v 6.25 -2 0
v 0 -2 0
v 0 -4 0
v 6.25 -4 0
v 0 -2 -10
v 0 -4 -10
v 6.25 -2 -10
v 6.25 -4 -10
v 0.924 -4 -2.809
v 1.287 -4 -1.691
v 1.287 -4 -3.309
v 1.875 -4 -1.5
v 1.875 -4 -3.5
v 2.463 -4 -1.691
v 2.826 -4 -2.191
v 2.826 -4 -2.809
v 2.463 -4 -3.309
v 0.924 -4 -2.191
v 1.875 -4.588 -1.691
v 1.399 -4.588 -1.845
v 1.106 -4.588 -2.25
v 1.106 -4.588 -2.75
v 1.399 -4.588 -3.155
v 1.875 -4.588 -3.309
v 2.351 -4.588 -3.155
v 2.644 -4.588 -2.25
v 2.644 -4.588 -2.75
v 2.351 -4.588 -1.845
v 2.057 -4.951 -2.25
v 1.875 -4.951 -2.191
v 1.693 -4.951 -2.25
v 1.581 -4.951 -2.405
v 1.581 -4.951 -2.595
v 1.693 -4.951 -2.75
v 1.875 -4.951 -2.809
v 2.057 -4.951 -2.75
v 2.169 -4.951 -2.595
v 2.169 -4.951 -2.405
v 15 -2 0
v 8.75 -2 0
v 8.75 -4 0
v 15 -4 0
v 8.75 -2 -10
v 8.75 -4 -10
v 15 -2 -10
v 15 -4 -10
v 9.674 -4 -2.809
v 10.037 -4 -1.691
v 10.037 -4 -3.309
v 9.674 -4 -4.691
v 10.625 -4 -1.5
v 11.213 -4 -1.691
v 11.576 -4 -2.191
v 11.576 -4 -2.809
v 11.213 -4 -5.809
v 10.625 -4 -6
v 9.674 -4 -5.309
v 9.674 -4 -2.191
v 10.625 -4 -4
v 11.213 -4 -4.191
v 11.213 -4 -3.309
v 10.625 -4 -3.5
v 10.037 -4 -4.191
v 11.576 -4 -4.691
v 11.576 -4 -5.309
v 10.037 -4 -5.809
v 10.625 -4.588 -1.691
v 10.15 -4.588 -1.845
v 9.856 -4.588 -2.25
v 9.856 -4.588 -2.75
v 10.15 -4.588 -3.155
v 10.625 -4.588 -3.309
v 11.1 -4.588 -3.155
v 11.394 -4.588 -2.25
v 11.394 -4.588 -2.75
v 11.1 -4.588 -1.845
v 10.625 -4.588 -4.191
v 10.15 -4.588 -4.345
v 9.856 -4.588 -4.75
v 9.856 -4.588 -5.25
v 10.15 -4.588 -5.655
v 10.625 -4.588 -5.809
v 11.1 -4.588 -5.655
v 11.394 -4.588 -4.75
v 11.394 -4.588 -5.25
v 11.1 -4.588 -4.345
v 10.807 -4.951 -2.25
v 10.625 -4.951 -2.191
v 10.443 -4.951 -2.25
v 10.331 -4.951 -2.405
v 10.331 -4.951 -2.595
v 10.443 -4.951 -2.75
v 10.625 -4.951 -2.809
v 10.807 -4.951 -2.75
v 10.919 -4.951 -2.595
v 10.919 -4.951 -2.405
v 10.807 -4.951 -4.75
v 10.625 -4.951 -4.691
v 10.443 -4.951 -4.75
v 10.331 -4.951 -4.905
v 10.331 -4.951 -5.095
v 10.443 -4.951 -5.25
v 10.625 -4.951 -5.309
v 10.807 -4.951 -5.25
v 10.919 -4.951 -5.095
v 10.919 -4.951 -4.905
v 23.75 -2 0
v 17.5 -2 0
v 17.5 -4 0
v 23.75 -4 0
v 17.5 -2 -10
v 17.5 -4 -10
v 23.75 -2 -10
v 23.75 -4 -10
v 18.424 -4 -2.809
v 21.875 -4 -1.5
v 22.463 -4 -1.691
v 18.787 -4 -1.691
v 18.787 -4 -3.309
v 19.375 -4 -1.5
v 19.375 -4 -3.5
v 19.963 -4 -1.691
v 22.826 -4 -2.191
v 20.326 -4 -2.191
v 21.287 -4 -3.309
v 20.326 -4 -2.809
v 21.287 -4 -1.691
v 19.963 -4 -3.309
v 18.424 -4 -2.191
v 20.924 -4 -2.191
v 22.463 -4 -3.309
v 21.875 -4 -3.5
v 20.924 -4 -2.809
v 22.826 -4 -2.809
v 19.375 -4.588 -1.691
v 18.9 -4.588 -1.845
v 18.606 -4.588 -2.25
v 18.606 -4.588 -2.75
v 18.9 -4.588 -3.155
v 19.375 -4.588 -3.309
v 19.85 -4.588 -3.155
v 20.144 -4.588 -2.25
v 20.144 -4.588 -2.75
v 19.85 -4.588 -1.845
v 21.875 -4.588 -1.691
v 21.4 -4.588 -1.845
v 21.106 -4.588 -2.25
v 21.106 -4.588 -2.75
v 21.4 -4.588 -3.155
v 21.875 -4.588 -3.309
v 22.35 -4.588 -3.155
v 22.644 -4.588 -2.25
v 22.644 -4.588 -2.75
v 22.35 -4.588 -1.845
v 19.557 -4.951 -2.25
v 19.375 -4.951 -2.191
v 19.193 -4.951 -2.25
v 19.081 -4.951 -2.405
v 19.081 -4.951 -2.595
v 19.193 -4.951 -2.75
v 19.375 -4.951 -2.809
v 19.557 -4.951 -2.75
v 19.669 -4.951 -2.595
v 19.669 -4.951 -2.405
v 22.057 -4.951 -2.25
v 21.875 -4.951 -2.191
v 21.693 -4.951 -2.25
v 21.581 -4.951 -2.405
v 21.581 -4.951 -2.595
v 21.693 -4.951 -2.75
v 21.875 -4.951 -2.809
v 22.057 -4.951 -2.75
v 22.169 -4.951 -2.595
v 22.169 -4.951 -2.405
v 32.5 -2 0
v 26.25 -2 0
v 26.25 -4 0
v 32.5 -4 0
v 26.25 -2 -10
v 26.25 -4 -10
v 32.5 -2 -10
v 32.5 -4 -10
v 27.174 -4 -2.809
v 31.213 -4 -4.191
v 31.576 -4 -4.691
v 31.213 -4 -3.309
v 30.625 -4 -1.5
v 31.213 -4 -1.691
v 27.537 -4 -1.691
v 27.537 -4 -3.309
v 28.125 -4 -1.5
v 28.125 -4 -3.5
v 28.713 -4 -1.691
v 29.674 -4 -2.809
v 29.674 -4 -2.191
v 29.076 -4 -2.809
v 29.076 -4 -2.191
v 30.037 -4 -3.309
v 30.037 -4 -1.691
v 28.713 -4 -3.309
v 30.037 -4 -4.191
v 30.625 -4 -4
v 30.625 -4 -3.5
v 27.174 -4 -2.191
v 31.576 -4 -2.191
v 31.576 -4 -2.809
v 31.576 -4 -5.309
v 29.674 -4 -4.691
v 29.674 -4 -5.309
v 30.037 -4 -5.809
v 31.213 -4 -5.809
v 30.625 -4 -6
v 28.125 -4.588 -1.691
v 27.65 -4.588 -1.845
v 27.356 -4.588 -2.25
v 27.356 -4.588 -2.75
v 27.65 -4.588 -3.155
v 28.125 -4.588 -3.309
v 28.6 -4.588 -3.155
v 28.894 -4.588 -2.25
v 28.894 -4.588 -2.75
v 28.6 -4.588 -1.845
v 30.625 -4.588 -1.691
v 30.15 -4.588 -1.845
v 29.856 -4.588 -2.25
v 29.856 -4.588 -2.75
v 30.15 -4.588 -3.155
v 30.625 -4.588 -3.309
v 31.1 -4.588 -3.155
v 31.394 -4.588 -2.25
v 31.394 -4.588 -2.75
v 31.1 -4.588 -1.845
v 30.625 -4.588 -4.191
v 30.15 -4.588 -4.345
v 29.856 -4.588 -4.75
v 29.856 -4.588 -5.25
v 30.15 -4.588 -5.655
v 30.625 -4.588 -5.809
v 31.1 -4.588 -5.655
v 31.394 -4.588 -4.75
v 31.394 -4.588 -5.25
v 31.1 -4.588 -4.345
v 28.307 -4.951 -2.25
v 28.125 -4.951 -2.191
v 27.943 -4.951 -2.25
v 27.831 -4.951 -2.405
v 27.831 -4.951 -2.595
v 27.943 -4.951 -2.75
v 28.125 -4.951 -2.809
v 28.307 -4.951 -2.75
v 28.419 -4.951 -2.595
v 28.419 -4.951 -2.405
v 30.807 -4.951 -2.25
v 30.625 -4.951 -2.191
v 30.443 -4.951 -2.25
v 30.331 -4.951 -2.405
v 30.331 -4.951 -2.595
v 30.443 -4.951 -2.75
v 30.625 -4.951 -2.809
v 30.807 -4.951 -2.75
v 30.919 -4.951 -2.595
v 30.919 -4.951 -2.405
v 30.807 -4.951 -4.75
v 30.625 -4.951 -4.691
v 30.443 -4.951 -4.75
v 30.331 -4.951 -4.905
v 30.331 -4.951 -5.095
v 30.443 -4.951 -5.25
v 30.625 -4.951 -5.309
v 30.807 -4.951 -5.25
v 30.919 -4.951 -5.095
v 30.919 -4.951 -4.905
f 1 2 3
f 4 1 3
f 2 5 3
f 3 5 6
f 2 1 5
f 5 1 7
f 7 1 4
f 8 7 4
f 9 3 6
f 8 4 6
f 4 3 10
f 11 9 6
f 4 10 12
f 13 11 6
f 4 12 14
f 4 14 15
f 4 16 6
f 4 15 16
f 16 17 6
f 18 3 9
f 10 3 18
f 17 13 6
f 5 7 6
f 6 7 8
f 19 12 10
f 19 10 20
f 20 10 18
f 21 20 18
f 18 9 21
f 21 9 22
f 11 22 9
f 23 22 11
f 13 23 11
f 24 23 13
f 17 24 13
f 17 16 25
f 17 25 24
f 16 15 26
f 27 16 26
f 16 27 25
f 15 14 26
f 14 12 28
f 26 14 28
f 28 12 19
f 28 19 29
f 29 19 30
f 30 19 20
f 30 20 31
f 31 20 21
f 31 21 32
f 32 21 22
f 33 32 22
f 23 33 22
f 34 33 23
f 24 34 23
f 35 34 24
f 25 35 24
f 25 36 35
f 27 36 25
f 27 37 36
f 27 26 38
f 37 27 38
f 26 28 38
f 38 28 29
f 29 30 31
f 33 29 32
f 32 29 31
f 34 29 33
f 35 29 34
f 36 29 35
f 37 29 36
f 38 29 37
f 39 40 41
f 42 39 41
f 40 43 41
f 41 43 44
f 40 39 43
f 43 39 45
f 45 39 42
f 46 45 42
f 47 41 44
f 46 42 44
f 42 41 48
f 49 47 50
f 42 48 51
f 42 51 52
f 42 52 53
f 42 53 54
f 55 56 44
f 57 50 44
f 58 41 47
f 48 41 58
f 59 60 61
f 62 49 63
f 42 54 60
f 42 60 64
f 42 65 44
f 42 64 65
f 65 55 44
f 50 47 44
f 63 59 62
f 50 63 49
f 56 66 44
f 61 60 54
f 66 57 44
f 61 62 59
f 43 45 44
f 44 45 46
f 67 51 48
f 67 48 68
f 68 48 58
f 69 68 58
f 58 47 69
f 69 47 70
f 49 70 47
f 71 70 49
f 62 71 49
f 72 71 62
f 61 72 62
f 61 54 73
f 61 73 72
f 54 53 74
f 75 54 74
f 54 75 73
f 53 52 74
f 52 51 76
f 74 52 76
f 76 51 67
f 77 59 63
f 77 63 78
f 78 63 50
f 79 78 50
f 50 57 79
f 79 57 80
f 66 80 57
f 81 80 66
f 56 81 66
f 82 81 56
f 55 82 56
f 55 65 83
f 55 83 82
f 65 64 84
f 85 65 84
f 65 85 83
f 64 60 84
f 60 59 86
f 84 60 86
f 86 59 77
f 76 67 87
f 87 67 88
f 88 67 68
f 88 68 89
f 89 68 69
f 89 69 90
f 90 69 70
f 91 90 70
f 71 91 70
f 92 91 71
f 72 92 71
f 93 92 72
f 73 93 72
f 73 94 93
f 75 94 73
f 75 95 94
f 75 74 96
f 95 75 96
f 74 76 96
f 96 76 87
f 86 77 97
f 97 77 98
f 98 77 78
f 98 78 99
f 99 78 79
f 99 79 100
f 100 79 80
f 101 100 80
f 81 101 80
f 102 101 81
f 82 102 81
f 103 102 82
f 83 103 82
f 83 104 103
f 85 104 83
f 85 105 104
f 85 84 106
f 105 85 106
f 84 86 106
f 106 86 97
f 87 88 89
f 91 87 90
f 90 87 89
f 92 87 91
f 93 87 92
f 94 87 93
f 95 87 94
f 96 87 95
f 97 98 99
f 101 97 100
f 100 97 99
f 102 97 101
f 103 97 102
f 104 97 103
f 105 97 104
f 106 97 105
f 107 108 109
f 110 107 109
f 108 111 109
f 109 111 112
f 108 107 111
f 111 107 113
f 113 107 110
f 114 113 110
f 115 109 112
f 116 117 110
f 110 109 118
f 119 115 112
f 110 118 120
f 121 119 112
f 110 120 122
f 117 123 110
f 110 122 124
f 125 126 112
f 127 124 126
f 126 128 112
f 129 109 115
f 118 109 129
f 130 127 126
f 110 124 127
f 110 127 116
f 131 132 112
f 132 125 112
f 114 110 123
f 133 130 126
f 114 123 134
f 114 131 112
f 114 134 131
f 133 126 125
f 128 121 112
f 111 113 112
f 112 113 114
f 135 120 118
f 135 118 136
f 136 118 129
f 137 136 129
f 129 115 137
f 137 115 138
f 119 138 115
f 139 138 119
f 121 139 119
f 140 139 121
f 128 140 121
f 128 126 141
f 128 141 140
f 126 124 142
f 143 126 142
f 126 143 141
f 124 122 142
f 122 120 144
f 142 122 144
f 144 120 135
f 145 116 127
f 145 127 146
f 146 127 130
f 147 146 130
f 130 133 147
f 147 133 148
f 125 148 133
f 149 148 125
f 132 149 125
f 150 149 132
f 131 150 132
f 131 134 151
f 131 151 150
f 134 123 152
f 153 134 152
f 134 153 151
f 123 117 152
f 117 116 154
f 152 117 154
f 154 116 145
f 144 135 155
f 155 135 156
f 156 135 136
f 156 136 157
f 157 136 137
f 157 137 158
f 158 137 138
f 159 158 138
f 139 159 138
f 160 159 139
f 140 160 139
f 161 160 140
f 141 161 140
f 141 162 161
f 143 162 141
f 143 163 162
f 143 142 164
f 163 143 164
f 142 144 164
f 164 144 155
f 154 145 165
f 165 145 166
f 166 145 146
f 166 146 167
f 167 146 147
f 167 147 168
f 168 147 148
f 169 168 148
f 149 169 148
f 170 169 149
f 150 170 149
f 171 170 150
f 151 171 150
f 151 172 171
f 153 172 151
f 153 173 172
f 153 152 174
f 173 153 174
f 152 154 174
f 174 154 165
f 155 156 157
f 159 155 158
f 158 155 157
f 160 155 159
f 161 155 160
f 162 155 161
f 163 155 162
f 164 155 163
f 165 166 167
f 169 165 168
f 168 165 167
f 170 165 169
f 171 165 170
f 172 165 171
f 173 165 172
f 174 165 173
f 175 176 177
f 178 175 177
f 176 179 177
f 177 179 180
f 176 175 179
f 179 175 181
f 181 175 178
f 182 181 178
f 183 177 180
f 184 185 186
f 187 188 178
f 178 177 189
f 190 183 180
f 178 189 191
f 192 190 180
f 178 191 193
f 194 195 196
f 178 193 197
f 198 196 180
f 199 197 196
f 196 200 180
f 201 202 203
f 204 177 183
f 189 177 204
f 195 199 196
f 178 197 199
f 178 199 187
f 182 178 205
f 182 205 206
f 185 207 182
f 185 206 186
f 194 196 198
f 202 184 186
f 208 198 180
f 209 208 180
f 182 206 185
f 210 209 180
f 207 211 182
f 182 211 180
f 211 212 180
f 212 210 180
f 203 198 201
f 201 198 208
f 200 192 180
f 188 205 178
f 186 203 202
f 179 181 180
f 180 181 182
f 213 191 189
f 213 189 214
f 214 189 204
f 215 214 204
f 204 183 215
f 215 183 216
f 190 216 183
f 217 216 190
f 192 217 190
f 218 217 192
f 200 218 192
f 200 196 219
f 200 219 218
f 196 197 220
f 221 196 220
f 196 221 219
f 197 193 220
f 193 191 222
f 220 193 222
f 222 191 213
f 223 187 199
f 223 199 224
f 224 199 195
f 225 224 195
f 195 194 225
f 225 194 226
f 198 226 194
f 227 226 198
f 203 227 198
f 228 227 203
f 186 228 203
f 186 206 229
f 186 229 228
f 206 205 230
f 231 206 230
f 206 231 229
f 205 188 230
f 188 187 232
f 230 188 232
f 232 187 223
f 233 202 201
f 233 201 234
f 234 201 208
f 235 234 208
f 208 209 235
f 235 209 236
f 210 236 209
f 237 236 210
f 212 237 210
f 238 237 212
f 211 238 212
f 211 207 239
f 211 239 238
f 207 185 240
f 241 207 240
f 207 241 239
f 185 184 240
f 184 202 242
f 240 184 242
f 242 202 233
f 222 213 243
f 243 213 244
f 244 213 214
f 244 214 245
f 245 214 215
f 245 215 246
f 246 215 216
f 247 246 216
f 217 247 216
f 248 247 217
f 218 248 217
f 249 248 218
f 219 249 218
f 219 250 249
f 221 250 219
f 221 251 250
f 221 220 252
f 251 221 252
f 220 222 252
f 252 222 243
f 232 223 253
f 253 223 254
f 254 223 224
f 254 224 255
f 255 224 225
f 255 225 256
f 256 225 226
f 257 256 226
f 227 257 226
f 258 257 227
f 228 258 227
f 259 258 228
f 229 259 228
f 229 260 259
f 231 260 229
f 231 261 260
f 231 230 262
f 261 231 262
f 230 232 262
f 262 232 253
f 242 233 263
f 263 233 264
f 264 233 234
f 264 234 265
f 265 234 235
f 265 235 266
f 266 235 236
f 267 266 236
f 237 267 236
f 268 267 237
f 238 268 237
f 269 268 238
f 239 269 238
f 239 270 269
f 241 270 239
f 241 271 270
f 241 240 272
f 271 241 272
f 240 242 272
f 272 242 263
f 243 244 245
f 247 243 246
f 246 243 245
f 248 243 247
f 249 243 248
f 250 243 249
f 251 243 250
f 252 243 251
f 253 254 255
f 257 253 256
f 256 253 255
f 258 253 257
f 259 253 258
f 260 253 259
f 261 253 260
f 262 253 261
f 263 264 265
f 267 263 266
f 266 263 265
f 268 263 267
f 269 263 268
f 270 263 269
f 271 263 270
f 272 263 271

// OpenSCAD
// file: braille-letter.scad
// mm sizes from http://dots.physics.orst.edu/gs_layout.html
radius = 0.25;
spacing = 2.5;
distance = 3.75 + spacing;

plate_height = 10;
plate_thickness = 2;

$fn = 10;

module letter(bitmap) {
	row_size = 2;
	col_size = 3;
	bitmap_size = row_size * col_size;
	
	function loc_x(loc) = floor(loc / row_size) * spacing + spacing;
	function loc_y(loc) = loc % row_size * spacing  + (distance-spacing)/2;

	for (loc = [0:bitmap_size - 1]) {
		if (bitmap[loc] != 0) {
			union() {
				translate(v = [loc_x(loc), loc_y(loc), 0]) {
					sphere(radius = radius* bitmap[loc], center = true);
				}
			}
		}
	}
}


module braille_char(char) {
	if (char == "A") {
		letter([
			1,0,
			0,0,
			0,0
		]);
	} else if (char == "B") {
		letter([
			1,0,
			1,0,
			0,0
		]);
	} else if (char == "C") {
		letter([
			1,1,
			0,0,
			0,0
		]);
	} else if (char == "D") {
		letter([
			1,1,
			0,1,
			0,0
		]);
	} else if (char == "E") {
		letter([
			1,0,
			0,1,
			0,0
		]);
	} else if (char == "F") {
		letter([
			1,1,
			1,0,
			0,0
		]);
	} else if (char == "G") {
		letter([
			1,1,
			1,1,
			0,0
		]);
	} else if (char == "H") {
		letter([
			1,0,
			1,1,
			0,0
		]);
	} else if (char == "I") {
		letter([
			0,1,
			1,0,
			0,0
		]);
	} else if (char == "J") {
		letter([
			0,1,
			1,1,
			0,0
		]);
	} else if (char == "K") {
		letter([
			1,0,
			0,0,
			1,0
		]);
	} else if (char == "L") {
		letter([
			1,0,
			1,0,
			1,0
		]);
	} else if (char == "M") {
		letter([
			1,1,
			0,0,
			1,0
		]);
	} else if (char == "N") {
		letter([
			1,1,
			0,1,
			1,0
		]);
	} else if (char == "O") {
		letter([
			1,0,
			0,1,
			1,0
		]);
	} else if (char == "P") {
		letter([
			1,1,
			1,0,
			1,0
		]);
	} else if (char == "Q") {
		letter([
			1,1,
			1,1,
			1,0
		]);
	} else if (char == "R") {
		letter([
			1,0,
			1,1,
			1,0
		]);
	} else if (char == "S") {
		letter([
			0,1,
			1,0,
			1,0
		]);
	} else if (char == "T") {
		letter([
			0,1,
			1,1,
			1,0
		]);
	} else if (char == "U") {
		letter([
			1,0,
			0,0,
			1,1
		]);
	} else if (char == "V") {
		letter([
			1,0,
			1,0,
			1,1
		]);
	} else if (char == "W") {
		letter([
			0,1,
			1,1,
			0,1
		]);
	} else if (char == "X") {
		letter([
			1,1,
			0,0,
			1,1
		]);
	} else if (char == "Y") {
		letter([
			1,1,
			0,1,
			1,1
		]);
	} else if (char == "Z") {
		letter([
			1,0,
			0,1,
			1,1
		]);
	} else if (char == "CH") {
		letter([
			1,0,
			0,0,
			0,1
		]);
	} else if (char == "SH") {
		letter([
			1,1,
			0,0,
			0,1
		]);
	} else if (char == "TH") {
		letter([
			1,1,
			0,1,
			0,1
		]);
	} else if (char == "WH") {
		letter([
			1,0,
			0,1,
			0,1
		]);
	} else if (char == "OU") {
		letter([
			1,0,
			1,1,
			0,1
		]);
	} else if (char == "ST") {
		letter([
			0,1,
			0,0,
			1,0
		]);
	} else if (char == "AND") {
		letter([
			1,1,
			1,0,
			1,1
		]);
	} else if (char == "FOR") {
		letter([
			1,1,
			1,1,
			1,1
		]);
	} else if (char == "OF") {
		letter([
			1,0,
			1,1,
			1,1
		]);
	} else if (char == "THE") {
		letter([
			0,1,
			1,0,
			1,1
		]);
	} else if (char == "WITH") {
		letter([
			0,1,
			1,1,
			1,1
		]);
	} else if (char == "IN") {
		letter([
			0,0,
			0,1,
			1,0
		]);
	} else if (char == "EN") {
		letter([
			0,0,
			1,0,
			0,1
		]);
	} else if (char == "CON") {
		letter([
			0,0,
			1,1,
			0,0
		]);
	} else if (char == "DIS") {
		letter([
			0,0,
			1,1,
			0,1
		]);
	} else if (char == "COM") {
		letter([
			0,0,
			0,0,
			1,1
		]);
	} else if (char == "BE") {
		letter([
			0,0,
			1,0,
			1,0
		]);
	} else if (char == "EA") {
		letter([
			0,0,
			1,0,
			0,0
		]);
	} else if (char == "BB") {
		letter([
			0,0,
			1,0,
			1,0
		]);
	} else if (char == "CC") {
		letter([
			0,0,
			1,1,
			0,0
		]);
	} else if (char == "DD") {
		letter([
			0,0,
			1,1,
			0,1
		]);
	} else if (char == "FF") {
		letter([
			0,0,
			1,1,
			1,0
		]);
	} else if (char == "GG") {
		letter([
			0,0,
			1,1,
			1,1
		]);
	} else if (char == "AR") {
		letter([
			0,1,
			0,1,
			1,0
		]);
	} else if (char == "BLE") {
		letter([
			0,1,
			0,1,
			1,1
		]);
	} else if (char == "ED") {
		letter([
			1,1,
			1,0,
			0,1
		]);
	} else if (char == "ER") {
		letter([
			1,1,
			1,1,
			0,1
		]);
	} else if (char == "GH") {
		letter([
			1,0,
			1,0,
			0,1
		]);
	} else if (char == "ING") {
		letter([
			0,1,
			0,0,
			1,1
		]);
	} else if (char == "OW") {
		letter([
			0,1,
			1,0,
			0,1
		]);
	} else if (char == "cap") {
		letter([
			0,0,
			0,0,
			0,1
		]);
	} else if (char == "#") {
		letter([
			0,1,
			0,1,
			1,1
		]);
	} else if (char == "let") {
		letter([
			0,0,
			0,1,
			0,1
		]);
	} else if (char == ".") {
		letter([
			0,0,
			1,1,
			0,1
		]);
	} else if (char == "?") {
		letter([
			0,0,
			1,0,
			1,1
		]);
	} else if (char == "!") {
		letter([
			0,0,
			1,1,
			1,0
		]);
	} else if (char == "-") {
		letter([
			0,0,
			0,0,
			1,1
		]);
	} else if (char == "quote") {
		letter([
			0,0,
			0,1,
			1,1
		]);
	} else if (char == "1") {
		letter([
			1,0,
			0,0,
			0,0
		]);
	} else if (char == "2") {
		letter([
			1,0,
			1,0,
			0,0
		]);
	} else if (char == "3") {
		letter([
			1,1,
			0,0,
			0,0
		]);
	} else if (char == "4") {
		letter([
			1,1,
			0,1,
			0,0
		]);
	} else if (char == "5") {
		letter([
			1,0,
			0,1,
			0,0
		]);
	} else if (char == "6") {
		letter([
			1,1,
			1,0,
			0,0
		]);
	} else if (char == "7") {
		letter([
			1,1,
			1,1,
			0,0
		]);
	} else if (char == "8") {
		letter([
			1,0,
			1,1,
			0,0
		]);
	} else if (char == "9") {
		letter([
			0,1,
			1,0,
			0,0
		]);
	} else if (char == "0") {
		letter([
			0,1,
			1,1,
			0,0
		]);
	} else {
		echo("Invalid Character: ", char);
	}

}

module braille_letter(char) {
	union() {
		translate([0,0,plate_thickness])
			braille_char(char);
		color([0,0,1]) {
			cube([plate_height, distance, plate_thickness]);
		}
	}
}

module braille_str(chars) {
	union() {
		for (count = [0:len(chars)-1]) {
			translate(v = [0, count * (distance+spacing), plate_thickness]) {
				braille_letter(chars[count]);
			}
		}
	}
}

module braille_alphabet() {

	translate([0,0,-plate_thickness*5*0])
		braille_str("ABCDEF", 6);

	translate([0,0,-plate_thickness*5*1])
		braille_str("GHIJKL", 6);

	translate([0,0,-plate_thickness*5*2])
		braille_str("MNOPQR", 6);

	translate([0,0,-plate_thickness*5*3])
		braille_str("STUVWX", 6);

	translate([0,0,-plate_thickness*5*4])
		braille_str("YZ", 6);

}

translate([-plate_height/2, -(distance+spacing)*3+spacing/2, 0])
	braille_alphabet();
// file: ../braille-letter.scad
// mm sizes from http://dots.physics.orst.edu/gs_layout.html
radius = 0.25;
spacing = 2.5;
distance = 3.75 + spacing;

plate_height = 10;
plate_thickness = 2;

$fn = 10;

module letter(bitmap) {
	row_size = 2;
	col_size = 3;
	bitmap_size = row_size * col_size;
	
	function loc_x(loc) = floor(loc / row_size) * spacing + spacing;
	function loc_y(loc) = loc % row_size * spacing  + (distance-spacing)/2;

	for (loc = [0:bitmap_size - 1]) {
		if (bitmap[loc] != 0) {
			union() {
				translate(v = [loc_x(loc), loc_y(loc), 0]) {
					sphere(radius = radius* bitmap[loc], center = true);
				}
			}
		}
	}
}


module braille_char(char) {
	if (char == "A") {
		letter([
			1,0,
			0,0,
			0,0
		]);
	} else if (char == "B") {
		letter([
			1,0,
			1,0,
			0,0
		]);
	} else if (char == "C") {
		letter([
			1,1,
			0,0,
			0,0
		]);
	} else if (char == "D") {
		letter([
			1,1,
			0,1,
			0,0
		]);
	} else if (char == "E") {
		letter([
			1,0,
			0,1,
			0,0
		]);
	} else if (char == "F") {
		letter([
			1,1,
			1,0,
			0,0
		]);
	} else if (char == "G") {
		letter([
			1,1,
			1,1,
			0,0
		]);
	} else if (char == "H") {
		letter([
			1,0,
			1,1,
			0,0
		]);
	} else if (char == "I") {
		letter([
			0,1,
			1,0,
			0,0
		]);
	} else if (char == "J") {
		letter([
			0,1,
			1,1,
			0,0
		]);
	} else if (char == "K") {
		letter([
			1,0,
			0,0,
			1,0
		]);
	} else if (char == "L") {
		letter([
			1,0,
			1,0,
			1,0
		]);
	} else if (char == "M") {
		letter([
			1,1,
			0,0,
			1,0
		]);
	} else if (char == "N") {
		letter([
			1,1,
			0,1,
			1,0
		]);
	} else if (char == "O") {
		letter([
			1,0,
			0,1,
			1,0
		]);
	} else if (char == "P") {
		letter([
			1,1,
			1,0,
			1,0
		]);
	} else if (char == "Q") {
		letter([
			1,1,
			1,1,
			1,0
		]);
	} else if (char == "R") {
		letter([
			1,0,
			1,1,
			1,0
		]);
	} else if (char == "S") {
		letter([
			0,1,
			1,0,
			1,0
		]);
	} else if (char == "T") {
		letter([
			0,1,
			1,1,
			1,0
		]);
	} else if (char == "U") {
		letter([
			1,0,
			0,0,
			1,1
		]);
	} else if (char == "V") {
		letter([
			1,0,
			1,0,
			1,1
		]);
	} else if (char == "W") {
		letter([
			0,1,
			1,1,
			0,1
		]);
	} else if (char == "X") {
		letter([
			1,1,
			0,0,
			1,1
		]);
	} else if (char == "Y") {
		letter([
			1,1,
			0,1,
			1,1
		]);
	} else if (char == "Z") {
		letter([
			1,0,
			0,1,
			1,1
		]);
	} else if (char == "CH") {
		letter([
			1,0,
			0,0,
			0,1
		]);
	} else if (char == "SH") {
		letter([
			1,1,
			0,0,
			0,1
		]);
	} else if (char == "TH") {
		letter([
			1,1,
			0,1,
			0,1
		]);
	} else if (char == "WH") {
		letter([
			1,0,
			0,1,
			0,1
		]);
	} else if (char == "OU") {
		letter([
			1,0,
			1,1,
			0,1
		]);
	} else if (char == "ST") {
		letter([
			0,1,
			0,0,
			1,0
		]);
	} else if (char == "AND") {
		letter([
			1,1,
			1,0,
			1,1
		]);
	} else if (char == "FOR") {
		letter([
			1,1,
			1,1,
			1,1
		]);
	} else if (char == "OF") {
		letter([
			1,0,
			1,1,
			1,1
		]);
	} else if (char == "THE") {
		letter([
			0,1,
			1,0,
			1,1
		]);
	} else if (char == "WITH") {
		letter([
			0,1,
			1,1,
			1,1
		]);
	} else if (char == "IN") {
		letter([
			0,0,
			0,1,
			1,0
		]);
	} else if (char == "EN") {
		letter([
			0,0,
			1,0,
			0,1
		]);
	} else if (char == "CON") {
		letter([
			0,0,
			1,1,
			0,0
		]);
	} else if (char == "DIS") {
		letter([
			0,0,
			1,1,
			0,1
		]);
	} else if (char == "COM") {
		letter([
			0,0,
			0,0,
			1,1
		]);
	} else if (char == "BE") {
		letter([
			0,0,
			1,0,
			1,0
		]);
	} else if (char == "EA") {
		letter([
			0,0,
			1,0,
			0,0
		]);
	} else if (char == "BB") {
		letter([
			0,0,
			1,0,
			1,0
		]);
	} else if (char == "CC") {
		letter([
			0,0,
			1,1,
			0,0
		]);
	} else if (char == "DD") {
		letter([
			0,0,
			1,1,
			0,1
		]);
	} else if (char == "FF") {
		letter([
			0,0,
			1,1,
			1,0
		]);
	} else if (char == "GG") {
		letter([
			0,0,
			1,1,
			1,1
		]);
	} else if (char == "AR") {
		letter([
			0,1,
			0,1,
			1,0
		]);
	} else if (char == "BLE") {
		letter([
			0,1,
			0,1,
			1,1
		]);
	} else if (char == "ED") {
		letter([
			1,1,
			1,0,
			0,1
		]);
	} else if (char == "ER") {
		letter([
			1,1,
			1,1,
			0,1
		]);
	} else if (char == "GH") {
		letter([
			1,0,
			1,0,
			0,1
		]);
	} else if (char == "ING") {
		letter([
			0,1,
			0,0,
			1,1
		]);
	} else if (char == "OW") {
		letter([
			0,1,
			1,0,
			0,1
		]);
	} else if (char == "cap") {
		letter([
			0,0,
			0,0,
			0,1
		]);
	} else if (char == "#") {
		letter([
			0,1,
			0,1,
			1,1
		]);
	} else if (char == "let") {
		letter([
			0,0,
			0,1,
			0,1
		]);
	} else if (char == ".") {
		letter([
			0,0,
			1,1,
			0,1
		]);
	} else if (char == "?") {
		letter([
			0,0,
			1,0,
			1,1
		]);
	} else if (char == "!") {
		letter([
			0,0,
			1,1,
			1,0
		]);
	} else if (char == "-") {
		letter([
			0,0,
			0,0,
			1,1
		]);
	} else if (char == "quote") {
		letter([
			0,0,
			0,1,
			1,1
		]);
	} else if (char == "1") {
		letter([
			1,0,
			0,0,
			0,0
		]);
	} else if (char == "2") {
		letter([
			1,0,
			1,0,
			0,0
		]);
	} else if (char == "3") {
		letter([
			1,1,
			0,0,
			0,0
		]);
	} else if (char == "4") {
		letter([
			1,1,
			0,1,
			0,0
		]);
	} else if (char == "5") {
		letter([
			1,0,
			0,1,
			0,0
		]);
	} else if (char == "6") {
		letter([
			1,1,
			1,0,
			0,0
		]);
	} else if (char == "7") {
		letter([
			1,1,
			1,1,
			0,0
		]);
	} else if (char == "8") {
		letter([
			1,0,
			1,1,
			0,0
		]);
	} else if (char == "9") {
		letter([
			0,1,
			1,0,
			0,0
		]);
	} else if (char == "0") {
		letter([
			0,1,
			1,1,
			0,0
		]);
	} else {
		echo("Invalid Character: ", char);
	}

}

module braille_letter(char) {
	union() {
		translate([0,0,plate_thickness])
			braille_char(char);
		color([0,0,1]) {
			cube([plate_height, distance, plate_thickness]);
		}
	}
}

module braille_str(chars) {
	union() {
		for (count = [0:len(chars)-1]) {
			translate(v = [0, count * (distance+spacing), plate_thickness]) {
				braille_letter(chars[count]);
			}
		}
	}
}

module braille_alphabet() {

	translate([0,0,-plate_thickness*5*0])
		braille_str("ABCDEF", 6);

	translate([0,0,-plate_thickness*5*1])
		braille_str("GHIJKL", 6);

	translate([0,0,-plate_thickness*5*2])
		braille_str("MNOPQR", 6);

	translate([0,0,-plate_thickness*5*3])
		braille_str("STUVWX", 6);

	translate([0,0,-plate_thickness*5*4])
		braille_str("YZ", 6);

}

translate([-plate_height/2, -(distance+spacing)*3+spacing/2, 0])
	braille_alphabet();
// main file
use <../braille-letter.scad>

use <braille-letter.scad>
translate([0, 0, 0])
	rotate([90, 90, 0])
	braille_str("ABCD");
